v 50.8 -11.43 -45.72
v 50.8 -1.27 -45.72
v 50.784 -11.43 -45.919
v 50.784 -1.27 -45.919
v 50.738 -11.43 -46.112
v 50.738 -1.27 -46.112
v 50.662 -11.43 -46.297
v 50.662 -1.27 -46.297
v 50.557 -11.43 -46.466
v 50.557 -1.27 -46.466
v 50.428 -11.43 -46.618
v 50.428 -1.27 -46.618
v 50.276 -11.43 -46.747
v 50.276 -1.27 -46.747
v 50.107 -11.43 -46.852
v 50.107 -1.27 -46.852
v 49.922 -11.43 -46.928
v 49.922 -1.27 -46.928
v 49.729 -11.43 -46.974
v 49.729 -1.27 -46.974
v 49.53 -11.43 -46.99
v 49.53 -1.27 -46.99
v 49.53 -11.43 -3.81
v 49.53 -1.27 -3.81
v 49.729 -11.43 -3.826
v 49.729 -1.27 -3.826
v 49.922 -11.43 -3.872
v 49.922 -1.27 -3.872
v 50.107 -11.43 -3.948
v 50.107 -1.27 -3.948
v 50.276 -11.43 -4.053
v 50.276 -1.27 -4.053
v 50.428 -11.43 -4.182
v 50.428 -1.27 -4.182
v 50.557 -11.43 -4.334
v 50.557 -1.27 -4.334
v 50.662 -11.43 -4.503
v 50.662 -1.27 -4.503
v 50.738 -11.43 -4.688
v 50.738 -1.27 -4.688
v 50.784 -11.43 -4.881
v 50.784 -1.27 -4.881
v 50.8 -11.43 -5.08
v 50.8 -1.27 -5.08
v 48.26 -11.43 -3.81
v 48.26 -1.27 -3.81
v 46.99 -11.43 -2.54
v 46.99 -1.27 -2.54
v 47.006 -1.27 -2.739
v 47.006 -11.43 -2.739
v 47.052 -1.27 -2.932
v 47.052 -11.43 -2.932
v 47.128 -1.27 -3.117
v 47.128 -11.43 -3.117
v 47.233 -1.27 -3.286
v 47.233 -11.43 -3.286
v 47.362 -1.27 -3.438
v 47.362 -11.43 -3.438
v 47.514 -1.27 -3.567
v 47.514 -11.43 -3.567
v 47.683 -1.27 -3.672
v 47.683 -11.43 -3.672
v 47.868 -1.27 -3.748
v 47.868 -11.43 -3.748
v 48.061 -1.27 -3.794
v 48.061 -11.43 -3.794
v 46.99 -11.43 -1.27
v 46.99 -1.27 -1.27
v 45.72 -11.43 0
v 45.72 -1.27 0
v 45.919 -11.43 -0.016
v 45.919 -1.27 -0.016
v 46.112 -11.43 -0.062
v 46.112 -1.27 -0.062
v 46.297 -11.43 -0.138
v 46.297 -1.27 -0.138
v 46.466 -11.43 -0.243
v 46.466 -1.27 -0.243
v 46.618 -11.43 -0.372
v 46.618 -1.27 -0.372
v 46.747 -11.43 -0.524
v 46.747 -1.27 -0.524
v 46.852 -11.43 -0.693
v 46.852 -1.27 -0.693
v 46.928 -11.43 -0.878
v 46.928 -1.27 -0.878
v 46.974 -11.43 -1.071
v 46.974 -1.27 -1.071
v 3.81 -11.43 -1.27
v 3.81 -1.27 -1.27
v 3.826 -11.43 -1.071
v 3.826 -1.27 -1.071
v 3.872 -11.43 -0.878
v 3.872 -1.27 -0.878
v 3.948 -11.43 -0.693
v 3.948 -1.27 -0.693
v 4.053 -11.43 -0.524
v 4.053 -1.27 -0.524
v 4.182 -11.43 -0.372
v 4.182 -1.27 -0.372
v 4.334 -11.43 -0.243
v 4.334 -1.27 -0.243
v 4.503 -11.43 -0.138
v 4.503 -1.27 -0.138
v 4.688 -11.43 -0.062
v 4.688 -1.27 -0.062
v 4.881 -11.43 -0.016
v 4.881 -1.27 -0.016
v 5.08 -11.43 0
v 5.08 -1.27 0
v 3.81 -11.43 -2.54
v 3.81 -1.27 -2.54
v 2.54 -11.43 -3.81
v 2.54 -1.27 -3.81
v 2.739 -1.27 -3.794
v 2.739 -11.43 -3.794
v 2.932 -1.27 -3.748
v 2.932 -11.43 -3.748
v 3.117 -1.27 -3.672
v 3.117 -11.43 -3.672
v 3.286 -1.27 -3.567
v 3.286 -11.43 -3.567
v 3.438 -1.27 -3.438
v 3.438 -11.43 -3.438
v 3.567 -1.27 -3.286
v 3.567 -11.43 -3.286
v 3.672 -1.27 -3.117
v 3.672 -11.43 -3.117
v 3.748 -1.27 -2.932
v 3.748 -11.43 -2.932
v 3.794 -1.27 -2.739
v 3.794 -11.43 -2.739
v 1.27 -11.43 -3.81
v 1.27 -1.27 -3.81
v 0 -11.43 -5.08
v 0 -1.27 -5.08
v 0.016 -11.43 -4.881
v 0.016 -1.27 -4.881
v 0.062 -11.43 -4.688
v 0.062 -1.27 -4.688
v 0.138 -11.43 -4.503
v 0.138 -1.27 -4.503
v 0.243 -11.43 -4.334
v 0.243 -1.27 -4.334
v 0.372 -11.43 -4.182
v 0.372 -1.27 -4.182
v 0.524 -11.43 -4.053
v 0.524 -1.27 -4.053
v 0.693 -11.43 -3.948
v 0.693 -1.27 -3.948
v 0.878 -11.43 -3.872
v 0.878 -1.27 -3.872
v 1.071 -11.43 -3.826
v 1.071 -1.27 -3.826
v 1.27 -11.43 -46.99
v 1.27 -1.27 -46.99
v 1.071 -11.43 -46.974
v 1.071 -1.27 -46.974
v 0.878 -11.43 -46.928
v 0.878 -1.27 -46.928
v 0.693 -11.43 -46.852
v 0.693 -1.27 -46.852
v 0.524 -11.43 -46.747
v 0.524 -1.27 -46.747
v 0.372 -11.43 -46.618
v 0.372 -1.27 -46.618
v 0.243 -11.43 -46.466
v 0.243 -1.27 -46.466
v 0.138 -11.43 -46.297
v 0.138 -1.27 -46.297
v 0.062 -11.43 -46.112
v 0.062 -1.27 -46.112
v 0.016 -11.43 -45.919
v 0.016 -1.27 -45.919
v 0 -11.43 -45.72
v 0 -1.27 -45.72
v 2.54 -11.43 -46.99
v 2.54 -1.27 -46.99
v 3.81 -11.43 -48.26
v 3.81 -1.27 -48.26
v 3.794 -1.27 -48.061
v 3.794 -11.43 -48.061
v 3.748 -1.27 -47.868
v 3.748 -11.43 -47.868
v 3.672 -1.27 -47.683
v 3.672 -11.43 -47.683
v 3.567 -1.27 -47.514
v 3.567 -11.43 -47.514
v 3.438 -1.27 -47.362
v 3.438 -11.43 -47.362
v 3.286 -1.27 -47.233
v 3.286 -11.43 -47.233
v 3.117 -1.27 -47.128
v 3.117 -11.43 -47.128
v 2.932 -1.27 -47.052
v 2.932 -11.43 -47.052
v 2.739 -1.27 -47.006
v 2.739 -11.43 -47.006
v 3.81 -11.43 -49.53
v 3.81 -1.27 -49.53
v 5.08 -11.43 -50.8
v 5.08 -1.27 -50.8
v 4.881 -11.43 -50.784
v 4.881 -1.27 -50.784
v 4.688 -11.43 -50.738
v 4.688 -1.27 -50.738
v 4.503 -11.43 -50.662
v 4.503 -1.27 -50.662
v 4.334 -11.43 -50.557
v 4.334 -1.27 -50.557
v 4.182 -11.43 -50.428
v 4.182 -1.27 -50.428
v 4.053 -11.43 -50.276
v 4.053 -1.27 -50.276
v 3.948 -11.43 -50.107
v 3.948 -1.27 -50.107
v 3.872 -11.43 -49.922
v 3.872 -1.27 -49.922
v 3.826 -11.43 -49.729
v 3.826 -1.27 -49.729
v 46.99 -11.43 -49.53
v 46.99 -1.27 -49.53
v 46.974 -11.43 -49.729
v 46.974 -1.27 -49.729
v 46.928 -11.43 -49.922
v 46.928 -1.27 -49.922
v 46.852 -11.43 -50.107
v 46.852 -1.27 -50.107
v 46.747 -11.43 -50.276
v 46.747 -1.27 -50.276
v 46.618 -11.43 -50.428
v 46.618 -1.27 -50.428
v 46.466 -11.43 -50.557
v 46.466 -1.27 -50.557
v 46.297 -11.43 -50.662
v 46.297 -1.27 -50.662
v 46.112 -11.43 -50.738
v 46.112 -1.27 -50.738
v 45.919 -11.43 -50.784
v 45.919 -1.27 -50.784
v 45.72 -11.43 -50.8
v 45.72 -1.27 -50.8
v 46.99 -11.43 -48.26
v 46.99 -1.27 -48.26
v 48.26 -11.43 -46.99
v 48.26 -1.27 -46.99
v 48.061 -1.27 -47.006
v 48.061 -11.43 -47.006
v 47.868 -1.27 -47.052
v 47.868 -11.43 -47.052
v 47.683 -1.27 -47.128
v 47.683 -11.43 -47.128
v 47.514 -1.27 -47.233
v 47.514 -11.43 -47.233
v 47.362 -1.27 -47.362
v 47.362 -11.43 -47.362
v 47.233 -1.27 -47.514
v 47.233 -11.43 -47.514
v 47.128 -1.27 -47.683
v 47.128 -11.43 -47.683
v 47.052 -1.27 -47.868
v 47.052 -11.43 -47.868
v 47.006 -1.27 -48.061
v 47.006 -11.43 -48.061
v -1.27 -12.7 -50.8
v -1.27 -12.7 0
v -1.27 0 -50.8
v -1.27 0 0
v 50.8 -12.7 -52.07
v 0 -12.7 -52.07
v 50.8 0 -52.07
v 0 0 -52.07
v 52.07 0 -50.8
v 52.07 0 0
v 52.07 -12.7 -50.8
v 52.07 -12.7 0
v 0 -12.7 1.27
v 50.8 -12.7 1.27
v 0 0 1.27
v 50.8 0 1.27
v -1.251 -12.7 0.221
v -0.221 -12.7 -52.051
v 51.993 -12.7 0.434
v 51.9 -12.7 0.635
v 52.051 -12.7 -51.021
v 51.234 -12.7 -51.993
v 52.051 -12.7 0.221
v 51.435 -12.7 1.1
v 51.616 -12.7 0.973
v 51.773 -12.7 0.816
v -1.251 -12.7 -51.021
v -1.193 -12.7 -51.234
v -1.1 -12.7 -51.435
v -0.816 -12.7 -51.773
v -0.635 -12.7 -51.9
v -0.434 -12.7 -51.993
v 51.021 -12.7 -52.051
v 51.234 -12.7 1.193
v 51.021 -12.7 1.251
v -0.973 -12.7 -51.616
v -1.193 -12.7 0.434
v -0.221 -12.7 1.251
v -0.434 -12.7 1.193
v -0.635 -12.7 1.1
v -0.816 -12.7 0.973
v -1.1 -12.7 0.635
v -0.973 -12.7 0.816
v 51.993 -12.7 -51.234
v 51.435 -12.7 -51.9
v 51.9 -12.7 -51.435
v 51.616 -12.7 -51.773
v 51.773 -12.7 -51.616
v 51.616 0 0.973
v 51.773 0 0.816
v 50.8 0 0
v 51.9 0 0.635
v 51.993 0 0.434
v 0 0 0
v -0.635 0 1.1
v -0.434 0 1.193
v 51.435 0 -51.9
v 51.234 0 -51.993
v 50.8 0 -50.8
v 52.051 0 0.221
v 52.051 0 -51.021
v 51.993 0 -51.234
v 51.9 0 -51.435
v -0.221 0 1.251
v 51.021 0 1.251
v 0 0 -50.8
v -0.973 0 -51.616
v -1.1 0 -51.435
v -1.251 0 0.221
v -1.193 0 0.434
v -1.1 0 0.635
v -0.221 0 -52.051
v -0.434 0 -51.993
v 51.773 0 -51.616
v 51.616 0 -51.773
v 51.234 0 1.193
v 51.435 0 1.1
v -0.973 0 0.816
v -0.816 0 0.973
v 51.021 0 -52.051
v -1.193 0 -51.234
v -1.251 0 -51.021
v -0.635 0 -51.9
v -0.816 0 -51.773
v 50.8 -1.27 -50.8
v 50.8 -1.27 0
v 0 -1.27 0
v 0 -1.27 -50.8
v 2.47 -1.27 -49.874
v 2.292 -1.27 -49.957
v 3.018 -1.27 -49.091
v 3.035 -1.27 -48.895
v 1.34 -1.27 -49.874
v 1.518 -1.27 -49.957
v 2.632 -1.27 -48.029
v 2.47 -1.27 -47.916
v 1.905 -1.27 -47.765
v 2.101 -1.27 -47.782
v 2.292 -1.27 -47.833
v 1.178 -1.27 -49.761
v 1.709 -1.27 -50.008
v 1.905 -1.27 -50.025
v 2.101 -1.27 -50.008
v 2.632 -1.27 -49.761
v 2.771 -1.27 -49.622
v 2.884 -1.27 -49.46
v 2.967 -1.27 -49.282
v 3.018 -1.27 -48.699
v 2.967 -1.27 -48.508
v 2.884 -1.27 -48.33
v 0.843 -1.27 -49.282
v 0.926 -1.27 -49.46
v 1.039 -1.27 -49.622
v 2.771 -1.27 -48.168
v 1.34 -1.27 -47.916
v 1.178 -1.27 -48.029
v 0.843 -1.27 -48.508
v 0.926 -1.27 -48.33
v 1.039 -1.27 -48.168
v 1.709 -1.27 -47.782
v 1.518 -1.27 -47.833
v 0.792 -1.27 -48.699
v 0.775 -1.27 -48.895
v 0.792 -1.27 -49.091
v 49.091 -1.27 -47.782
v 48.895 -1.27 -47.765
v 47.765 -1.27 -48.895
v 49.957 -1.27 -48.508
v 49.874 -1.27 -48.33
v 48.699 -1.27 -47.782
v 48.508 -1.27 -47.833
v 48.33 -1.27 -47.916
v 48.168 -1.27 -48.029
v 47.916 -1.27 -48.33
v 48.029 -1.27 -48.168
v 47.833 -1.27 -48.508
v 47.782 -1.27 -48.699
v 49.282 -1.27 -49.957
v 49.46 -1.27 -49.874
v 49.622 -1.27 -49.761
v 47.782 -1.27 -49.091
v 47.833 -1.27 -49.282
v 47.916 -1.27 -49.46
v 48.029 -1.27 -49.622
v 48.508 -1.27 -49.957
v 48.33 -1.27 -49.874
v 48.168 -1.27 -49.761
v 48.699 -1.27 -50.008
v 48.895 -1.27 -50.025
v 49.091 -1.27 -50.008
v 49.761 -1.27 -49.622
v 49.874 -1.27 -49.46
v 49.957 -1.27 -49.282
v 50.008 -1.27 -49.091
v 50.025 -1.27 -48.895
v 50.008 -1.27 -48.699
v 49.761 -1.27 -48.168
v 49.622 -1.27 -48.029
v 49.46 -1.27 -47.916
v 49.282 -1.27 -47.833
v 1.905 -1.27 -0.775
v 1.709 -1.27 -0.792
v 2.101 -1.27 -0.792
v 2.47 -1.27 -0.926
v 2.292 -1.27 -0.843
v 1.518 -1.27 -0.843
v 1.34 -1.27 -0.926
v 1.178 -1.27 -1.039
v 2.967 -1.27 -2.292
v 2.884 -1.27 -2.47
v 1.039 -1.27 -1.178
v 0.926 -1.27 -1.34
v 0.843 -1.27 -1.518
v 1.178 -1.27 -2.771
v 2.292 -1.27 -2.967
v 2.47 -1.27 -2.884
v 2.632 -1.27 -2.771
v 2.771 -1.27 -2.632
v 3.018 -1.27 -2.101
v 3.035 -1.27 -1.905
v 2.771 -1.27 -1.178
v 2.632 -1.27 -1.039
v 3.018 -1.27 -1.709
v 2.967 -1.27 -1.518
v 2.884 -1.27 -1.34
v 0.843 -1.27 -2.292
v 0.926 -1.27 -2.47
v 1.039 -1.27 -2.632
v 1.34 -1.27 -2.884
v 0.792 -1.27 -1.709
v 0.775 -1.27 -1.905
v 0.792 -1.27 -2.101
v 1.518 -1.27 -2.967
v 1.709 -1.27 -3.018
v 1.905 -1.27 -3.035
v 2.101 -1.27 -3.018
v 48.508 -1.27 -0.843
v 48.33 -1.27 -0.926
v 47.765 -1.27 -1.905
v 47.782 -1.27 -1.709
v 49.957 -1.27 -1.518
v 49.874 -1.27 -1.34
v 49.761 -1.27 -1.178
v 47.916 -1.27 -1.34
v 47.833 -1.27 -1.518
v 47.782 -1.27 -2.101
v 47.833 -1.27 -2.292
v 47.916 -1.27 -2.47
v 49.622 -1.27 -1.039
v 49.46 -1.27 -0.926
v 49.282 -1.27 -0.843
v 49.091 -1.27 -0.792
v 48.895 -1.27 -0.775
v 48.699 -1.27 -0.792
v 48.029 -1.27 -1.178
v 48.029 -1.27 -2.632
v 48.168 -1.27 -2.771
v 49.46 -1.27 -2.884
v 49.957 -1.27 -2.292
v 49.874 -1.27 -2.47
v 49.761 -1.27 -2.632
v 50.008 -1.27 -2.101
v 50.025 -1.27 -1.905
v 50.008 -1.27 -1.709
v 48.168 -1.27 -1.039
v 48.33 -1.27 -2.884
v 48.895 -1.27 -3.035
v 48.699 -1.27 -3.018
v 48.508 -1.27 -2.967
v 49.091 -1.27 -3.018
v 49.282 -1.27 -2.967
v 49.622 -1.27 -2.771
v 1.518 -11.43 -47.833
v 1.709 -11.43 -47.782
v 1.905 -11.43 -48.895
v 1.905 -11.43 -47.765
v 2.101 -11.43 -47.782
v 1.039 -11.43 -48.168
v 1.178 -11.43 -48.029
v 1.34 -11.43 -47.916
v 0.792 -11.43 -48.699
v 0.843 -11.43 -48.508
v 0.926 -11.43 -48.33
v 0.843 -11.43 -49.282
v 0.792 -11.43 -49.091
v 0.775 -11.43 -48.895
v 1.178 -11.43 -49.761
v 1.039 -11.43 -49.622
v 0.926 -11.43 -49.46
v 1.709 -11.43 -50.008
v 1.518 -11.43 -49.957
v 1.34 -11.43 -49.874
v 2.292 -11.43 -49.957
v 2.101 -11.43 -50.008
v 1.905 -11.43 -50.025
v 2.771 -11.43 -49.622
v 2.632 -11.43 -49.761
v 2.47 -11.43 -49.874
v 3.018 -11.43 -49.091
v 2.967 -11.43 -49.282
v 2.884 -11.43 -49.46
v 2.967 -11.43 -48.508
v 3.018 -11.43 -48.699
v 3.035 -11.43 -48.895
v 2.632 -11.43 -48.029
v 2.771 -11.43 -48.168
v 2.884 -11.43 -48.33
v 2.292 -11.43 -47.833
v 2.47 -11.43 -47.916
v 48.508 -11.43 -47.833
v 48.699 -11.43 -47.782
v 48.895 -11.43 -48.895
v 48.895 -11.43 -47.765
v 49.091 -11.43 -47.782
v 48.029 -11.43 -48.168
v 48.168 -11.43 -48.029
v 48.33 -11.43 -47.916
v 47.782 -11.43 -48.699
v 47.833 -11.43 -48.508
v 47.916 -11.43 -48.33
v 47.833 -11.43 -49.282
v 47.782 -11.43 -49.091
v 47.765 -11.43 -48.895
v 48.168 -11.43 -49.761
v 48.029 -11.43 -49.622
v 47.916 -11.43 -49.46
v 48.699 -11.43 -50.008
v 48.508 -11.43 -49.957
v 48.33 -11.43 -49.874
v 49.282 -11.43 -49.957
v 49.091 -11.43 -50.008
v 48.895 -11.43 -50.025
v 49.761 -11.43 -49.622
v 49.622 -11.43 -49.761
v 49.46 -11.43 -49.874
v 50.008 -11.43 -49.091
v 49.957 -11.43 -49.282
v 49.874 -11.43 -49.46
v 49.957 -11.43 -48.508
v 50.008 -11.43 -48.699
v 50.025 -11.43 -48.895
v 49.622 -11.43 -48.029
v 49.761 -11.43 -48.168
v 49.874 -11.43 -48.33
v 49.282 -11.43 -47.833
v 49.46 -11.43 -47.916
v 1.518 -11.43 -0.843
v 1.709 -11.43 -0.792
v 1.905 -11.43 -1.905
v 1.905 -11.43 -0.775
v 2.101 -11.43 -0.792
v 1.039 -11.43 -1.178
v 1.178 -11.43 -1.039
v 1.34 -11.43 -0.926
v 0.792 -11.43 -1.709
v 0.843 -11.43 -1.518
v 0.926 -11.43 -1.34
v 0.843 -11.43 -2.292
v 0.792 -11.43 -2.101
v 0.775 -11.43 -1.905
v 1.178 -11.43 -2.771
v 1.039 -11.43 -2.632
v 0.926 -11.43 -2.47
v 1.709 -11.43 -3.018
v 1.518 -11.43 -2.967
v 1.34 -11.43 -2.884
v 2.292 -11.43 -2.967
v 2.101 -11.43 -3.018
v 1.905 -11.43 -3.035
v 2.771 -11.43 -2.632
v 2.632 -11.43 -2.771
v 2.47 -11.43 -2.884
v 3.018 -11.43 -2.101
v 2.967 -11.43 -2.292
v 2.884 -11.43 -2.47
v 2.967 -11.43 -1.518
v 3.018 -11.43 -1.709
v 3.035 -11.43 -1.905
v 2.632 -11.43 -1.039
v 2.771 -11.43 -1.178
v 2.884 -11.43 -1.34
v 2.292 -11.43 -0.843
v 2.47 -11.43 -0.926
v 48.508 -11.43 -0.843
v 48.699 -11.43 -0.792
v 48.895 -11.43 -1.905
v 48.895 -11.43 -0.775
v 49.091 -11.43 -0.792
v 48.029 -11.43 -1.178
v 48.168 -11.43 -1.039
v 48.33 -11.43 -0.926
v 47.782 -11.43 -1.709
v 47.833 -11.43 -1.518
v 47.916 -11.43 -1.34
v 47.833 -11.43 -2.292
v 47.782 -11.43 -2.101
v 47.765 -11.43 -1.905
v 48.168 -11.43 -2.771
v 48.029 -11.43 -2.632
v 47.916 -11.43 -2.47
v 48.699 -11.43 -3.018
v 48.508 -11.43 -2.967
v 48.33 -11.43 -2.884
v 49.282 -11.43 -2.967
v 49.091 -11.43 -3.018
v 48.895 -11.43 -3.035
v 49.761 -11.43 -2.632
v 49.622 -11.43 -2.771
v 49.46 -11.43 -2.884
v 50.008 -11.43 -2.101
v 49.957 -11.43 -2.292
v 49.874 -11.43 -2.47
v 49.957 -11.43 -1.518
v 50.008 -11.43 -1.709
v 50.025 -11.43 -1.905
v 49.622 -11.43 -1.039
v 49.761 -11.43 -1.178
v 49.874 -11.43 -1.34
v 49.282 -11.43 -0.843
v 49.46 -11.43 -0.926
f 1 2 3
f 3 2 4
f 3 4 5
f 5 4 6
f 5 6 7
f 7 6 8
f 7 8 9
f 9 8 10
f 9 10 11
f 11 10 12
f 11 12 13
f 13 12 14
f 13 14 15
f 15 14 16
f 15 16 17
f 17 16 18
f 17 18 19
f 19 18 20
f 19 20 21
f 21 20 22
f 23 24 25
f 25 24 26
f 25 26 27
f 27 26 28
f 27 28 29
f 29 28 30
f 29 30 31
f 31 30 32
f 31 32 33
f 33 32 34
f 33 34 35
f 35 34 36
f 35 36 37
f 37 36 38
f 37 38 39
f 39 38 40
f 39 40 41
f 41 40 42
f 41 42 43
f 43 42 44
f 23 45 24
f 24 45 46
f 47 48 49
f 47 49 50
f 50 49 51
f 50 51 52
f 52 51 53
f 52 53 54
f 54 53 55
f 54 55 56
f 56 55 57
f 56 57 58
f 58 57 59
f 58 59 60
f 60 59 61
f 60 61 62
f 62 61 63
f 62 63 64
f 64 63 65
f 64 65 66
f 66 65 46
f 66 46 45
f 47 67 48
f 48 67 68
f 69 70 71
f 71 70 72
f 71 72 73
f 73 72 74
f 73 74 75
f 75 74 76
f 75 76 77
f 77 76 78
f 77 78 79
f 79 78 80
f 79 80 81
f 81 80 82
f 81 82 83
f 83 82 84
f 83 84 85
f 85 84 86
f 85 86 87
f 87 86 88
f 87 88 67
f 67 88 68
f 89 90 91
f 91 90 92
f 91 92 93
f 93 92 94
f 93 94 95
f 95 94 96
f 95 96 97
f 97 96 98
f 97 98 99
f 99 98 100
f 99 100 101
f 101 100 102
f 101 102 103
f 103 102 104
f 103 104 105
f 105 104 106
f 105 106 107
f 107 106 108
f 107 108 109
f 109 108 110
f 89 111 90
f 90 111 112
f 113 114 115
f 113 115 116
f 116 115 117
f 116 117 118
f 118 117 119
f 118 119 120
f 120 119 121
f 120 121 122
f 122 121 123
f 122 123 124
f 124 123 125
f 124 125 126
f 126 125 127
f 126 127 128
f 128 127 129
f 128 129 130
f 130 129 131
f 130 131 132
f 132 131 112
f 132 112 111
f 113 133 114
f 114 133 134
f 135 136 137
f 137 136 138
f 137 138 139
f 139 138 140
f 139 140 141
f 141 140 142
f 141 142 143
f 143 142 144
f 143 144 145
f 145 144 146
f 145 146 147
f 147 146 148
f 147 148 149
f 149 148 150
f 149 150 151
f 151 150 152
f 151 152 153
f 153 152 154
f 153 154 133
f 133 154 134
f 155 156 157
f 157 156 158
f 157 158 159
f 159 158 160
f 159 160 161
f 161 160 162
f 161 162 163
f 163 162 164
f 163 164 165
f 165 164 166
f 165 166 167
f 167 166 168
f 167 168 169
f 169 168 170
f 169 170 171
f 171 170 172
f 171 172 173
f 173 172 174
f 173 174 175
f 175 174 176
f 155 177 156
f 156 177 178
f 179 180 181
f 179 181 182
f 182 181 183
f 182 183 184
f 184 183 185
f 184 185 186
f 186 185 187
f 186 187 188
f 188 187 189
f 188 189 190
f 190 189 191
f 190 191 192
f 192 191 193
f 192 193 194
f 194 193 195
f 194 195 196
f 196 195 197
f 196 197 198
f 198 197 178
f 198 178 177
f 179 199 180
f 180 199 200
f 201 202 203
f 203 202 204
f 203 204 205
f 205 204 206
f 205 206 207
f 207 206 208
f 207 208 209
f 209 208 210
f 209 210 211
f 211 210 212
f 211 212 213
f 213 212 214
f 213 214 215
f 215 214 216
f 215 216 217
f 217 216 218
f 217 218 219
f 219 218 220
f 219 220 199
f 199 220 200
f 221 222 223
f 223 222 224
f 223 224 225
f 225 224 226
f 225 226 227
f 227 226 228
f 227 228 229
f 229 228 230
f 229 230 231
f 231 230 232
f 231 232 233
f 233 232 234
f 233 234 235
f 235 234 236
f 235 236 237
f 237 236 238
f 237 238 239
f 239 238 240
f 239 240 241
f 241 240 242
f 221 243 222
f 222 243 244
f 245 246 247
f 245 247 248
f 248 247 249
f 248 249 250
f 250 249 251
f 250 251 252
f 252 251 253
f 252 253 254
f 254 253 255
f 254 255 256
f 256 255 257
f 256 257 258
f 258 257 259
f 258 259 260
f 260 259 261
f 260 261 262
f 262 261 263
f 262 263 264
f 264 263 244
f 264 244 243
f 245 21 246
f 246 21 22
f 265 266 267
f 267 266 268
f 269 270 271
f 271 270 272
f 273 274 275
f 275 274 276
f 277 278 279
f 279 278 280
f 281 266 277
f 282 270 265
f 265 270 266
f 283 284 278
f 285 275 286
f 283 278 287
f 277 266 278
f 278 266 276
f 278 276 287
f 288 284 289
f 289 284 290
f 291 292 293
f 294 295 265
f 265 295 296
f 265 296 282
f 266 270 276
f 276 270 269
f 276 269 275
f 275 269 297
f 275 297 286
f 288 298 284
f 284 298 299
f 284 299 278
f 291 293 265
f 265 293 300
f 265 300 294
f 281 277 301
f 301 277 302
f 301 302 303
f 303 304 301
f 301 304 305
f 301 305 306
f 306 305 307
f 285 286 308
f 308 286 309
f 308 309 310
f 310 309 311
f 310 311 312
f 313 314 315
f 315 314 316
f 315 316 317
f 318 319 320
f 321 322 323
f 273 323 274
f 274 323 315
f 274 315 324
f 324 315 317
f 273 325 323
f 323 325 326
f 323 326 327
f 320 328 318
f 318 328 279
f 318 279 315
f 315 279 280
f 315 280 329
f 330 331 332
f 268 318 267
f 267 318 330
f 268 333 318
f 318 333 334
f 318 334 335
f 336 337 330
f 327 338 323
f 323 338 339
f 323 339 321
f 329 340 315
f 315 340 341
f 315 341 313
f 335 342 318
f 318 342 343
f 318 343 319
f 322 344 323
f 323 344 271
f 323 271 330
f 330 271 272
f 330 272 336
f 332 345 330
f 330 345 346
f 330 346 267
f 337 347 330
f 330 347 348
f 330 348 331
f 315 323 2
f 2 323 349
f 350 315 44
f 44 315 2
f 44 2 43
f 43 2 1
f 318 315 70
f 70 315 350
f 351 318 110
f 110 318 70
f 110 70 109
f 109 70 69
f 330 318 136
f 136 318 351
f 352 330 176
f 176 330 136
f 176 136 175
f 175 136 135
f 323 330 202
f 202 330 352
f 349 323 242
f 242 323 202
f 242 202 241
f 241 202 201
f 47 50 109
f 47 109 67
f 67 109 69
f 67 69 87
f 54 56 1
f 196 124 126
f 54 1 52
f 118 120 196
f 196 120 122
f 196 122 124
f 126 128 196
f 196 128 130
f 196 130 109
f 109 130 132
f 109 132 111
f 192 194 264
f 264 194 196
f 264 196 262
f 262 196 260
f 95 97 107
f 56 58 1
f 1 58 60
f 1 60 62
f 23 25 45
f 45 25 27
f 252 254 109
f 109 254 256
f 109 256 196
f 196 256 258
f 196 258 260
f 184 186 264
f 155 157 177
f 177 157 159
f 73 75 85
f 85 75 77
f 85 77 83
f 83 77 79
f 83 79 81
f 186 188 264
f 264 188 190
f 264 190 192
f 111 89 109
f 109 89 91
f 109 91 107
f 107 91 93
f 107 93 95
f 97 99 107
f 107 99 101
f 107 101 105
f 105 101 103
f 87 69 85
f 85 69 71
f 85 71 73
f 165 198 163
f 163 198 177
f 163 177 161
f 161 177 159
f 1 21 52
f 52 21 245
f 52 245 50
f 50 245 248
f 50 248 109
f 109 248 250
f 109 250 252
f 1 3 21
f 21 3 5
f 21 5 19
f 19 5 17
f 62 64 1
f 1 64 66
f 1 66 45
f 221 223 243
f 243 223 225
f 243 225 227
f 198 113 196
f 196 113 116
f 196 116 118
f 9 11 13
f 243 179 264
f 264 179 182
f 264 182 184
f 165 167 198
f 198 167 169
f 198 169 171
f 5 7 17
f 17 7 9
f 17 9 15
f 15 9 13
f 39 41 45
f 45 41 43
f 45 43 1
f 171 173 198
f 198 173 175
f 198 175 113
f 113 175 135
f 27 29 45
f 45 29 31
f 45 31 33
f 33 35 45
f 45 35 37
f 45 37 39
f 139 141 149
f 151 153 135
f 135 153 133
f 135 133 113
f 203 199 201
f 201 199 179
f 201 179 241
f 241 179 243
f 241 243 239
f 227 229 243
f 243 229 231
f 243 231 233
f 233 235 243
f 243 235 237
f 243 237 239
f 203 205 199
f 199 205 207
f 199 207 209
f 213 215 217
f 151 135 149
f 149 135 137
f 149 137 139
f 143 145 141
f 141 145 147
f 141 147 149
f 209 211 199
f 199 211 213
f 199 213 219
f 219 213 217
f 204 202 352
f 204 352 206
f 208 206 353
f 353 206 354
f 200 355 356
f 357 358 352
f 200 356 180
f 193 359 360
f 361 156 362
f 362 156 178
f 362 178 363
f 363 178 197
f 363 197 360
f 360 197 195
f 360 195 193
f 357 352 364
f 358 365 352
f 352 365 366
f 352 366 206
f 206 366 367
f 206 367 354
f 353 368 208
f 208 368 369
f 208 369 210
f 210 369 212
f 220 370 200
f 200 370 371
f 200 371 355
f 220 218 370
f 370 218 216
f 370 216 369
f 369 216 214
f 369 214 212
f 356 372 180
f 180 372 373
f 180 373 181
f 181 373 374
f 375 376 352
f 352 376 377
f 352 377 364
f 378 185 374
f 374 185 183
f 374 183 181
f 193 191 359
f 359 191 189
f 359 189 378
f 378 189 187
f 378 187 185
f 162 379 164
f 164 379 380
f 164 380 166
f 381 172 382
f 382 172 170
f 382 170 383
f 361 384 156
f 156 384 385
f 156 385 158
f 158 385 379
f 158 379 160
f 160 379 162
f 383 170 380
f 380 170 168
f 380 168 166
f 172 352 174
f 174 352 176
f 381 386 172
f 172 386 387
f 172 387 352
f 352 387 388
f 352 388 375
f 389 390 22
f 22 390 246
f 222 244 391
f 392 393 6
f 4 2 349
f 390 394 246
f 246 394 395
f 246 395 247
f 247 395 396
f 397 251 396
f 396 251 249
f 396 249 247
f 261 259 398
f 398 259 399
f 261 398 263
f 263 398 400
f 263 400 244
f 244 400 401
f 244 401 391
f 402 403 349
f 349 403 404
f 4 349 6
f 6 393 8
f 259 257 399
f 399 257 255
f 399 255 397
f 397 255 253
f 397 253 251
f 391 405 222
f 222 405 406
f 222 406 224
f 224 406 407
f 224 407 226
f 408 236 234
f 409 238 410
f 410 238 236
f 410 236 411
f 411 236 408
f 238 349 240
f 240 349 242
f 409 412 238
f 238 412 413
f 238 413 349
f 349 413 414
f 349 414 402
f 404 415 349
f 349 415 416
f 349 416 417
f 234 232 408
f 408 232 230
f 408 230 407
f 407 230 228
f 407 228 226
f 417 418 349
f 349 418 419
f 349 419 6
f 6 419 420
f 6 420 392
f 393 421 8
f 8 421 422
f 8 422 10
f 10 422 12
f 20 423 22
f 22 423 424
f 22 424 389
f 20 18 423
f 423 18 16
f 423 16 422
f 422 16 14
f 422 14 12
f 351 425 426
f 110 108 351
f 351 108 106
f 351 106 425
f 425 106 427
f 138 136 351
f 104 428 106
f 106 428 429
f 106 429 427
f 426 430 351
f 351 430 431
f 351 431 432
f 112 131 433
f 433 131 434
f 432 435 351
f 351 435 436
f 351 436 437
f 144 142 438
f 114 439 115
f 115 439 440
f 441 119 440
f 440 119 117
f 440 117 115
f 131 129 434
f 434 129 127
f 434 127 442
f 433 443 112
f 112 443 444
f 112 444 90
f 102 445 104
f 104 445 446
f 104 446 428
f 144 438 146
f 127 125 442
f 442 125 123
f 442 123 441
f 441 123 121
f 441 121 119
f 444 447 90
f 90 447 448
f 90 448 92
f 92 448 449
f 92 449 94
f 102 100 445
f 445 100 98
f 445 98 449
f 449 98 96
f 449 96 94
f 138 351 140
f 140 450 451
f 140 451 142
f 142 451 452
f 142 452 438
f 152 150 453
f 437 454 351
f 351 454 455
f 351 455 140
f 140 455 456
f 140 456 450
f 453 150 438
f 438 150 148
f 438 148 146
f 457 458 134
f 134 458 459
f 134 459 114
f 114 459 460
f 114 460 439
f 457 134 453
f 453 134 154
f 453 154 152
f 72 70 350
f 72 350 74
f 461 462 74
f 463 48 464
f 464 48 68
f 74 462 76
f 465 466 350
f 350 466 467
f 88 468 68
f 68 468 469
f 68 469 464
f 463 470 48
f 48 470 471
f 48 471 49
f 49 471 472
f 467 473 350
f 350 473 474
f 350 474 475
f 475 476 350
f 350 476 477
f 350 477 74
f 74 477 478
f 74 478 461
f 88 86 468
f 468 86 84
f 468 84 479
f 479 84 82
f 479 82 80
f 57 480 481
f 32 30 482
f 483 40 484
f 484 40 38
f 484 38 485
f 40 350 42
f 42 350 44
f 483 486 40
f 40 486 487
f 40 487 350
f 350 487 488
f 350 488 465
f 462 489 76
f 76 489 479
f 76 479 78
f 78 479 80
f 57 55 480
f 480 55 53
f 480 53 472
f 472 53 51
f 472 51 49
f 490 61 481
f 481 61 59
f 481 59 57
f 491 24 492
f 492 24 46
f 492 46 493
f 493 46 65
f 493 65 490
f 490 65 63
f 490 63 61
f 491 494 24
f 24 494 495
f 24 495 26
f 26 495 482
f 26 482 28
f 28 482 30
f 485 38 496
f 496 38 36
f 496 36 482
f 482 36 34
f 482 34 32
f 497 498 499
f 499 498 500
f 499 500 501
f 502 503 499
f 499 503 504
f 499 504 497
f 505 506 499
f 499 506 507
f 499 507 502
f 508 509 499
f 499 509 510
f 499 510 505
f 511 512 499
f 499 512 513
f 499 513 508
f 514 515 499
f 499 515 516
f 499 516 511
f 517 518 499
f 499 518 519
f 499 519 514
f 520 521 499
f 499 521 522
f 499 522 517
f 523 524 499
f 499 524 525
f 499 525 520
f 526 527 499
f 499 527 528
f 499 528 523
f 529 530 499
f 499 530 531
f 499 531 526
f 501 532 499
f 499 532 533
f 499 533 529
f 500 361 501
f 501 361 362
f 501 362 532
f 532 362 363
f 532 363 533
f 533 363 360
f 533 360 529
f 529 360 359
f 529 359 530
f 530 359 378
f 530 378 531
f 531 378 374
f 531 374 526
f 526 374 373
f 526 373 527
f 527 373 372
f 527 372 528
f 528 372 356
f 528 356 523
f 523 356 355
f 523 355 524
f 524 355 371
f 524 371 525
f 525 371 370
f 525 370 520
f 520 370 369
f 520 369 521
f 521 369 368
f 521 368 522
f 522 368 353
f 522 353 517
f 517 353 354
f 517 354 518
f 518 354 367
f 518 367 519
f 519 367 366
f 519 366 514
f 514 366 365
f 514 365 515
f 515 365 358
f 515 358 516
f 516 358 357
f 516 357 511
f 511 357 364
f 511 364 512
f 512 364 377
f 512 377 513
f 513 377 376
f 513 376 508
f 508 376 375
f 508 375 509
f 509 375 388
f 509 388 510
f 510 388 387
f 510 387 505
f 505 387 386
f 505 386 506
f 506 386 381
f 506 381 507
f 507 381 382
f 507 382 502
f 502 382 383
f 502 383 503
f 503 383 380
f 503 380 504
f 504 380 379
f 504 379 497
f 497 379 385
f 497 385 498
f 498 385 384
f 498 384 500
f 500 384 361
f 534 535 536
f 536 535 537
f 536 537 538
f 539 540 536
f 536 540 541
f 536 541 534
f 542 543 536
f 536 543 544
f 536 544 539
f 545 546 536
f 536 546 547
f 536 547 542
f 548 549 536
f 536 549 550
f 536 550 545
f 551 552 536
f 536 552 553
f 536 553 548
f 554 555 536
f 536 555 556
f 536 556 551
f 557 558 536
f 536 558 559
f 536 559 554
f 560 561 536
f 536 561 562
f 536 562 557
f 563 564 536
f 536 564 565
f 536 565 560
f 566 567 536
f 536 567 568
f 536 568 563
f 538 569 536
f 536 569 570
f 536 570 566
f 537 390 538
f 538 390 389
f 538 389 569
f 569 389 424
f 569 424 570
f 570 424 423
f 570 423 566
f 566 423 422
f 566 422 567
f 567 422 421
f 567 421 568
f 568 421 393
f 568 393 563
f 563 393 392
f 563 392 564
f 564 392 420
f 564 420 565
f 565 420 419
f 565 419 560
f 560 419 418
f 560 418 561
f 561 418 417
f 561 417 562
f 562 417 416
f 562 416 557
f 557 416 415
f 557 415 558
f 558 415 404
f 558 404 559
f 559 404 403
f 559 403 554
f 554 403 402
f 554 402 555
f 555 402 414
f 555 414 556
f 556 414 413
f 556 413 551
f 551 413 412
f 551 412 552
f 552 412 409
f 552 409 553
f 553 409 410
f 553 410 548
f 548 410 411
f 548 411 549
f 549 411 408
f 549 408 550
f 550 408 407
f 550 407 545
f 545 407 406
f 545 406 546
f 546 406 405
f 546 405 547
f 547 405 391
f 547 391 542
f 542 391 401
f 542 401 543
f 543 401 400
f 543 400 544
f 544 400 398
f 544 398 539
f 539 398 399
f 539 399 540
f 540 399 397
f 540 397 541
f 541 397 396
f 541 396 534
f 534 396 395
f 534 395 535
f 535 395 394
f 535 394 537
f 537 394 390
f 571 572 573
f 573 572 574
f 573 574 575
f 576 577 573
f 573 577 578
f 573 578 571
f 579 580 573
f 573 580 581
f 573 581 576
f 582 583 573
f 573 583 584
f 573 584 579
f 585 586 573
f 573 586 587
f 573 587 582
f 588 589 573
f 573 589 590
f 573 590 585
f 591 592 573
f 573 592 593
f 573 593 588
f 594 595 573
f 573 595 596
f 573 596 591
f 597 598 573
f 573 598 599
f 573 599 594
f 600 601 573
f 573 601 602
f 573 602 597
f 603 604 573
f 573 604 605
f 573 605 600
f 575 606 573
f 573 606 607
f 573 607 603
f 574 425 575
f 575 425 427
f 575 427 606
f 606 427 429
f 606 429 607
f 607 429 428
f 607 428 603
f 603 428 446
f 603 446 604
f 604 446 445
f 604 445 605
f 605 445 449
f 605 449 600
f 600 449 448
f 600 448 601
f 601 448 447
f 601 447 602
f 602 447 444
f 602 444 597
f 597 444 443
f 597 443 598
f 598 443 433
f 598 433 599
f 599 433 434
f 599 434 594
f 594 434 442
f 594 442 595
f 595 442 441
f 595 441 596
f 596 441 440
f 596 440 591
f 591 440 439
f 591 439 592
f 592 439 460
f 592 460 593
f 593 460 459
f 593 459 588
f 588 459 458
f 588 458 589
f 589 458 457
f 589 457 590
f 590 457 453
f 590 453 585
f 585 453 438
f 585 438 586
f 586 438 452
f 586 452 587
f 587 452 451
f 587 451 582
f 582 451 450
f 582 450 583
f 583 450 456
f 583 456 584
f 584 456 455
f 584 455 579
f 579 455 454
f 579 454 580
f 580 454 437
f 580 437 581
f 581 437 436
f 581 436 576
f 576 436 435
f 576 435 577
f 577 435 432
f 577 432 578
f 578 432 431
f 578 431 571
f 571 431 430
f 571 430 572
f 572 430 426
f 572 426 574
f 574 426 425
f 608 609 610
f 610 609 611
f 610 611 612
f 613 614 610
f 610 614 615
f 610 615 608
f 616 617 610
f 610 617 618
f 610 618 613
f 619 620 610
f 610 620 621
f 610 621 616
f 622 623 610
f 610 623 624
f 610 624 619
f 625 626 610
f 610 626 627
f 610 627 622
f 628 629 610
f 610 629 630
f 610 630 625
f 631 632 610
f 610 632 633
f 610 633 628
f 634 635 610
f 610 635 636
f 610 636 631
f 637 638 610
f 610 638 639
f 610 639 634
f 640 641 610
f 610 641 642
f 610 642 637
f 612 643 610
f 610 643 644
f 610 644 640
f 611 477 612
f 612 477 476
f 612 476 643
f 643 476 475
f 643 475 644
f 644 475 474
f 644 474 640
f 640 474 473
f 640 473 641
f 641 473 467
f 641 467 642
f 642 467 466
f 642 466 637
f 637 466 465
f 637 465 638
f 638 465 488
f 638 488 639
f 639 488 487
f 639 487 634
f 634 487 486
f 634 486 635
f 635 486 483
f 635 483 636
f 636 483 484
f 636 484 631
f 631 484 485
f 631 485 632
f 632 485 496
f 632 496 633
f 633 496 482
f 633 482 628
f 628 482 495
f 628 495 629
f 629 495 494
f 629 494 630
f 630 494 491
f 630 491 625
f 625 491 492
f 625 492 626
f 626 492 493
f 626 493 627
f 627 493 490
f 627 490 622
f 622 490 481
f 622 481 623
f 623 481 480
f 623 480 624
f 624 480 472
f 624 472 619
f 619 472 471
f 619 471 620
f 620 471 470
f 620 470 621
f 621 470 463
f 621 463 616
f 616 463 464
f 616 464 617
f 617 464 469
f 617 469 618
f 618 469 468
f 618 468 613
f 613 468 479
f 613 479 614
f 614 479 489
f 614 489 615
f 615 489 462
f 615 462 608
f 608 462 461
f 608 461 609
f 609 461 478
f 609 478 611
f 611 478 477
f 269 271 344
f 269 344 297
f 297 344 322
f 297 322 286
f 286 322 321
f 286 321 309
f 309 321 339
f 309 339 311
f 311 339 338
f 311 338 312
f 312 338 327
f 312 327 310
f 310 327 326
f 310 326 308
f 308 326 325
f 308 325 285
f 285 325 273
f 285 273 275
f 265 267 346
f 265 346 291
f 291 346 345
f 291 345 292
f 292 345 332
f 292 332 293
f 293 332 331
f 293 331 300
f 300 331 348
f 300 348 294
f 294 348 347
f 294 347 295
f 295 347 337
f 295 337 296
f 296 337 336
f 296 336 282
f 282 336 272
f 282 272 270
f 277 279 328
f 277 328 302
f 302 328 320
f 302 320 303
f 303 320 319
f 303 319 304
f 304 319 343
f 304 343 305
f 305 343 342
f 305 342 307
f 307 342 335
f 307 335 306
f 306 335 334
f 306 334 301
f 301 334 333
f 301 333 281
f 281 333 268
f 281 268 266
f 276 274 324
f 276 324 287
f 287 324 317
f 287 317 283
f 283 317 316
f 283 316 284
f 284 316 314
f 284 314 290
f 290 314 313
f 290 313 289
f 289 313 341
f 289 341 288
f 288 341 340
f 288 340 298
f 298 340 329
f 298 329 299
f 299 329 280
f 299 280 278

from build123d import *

# Parameters (mm, degrees)
SKETCH4_W                 = 53.34
SKETCH4_H                 = 53.34
BOSS_EXTRUDE1_DEPTH       = 12.7
CUT_EXTRUDE1_DEPTH        = 11.43
F_4_40_TAPPED_HOLE1_D     = 2.2606
F_4_40_TAPPED_HOLE1_DEPTH = 11.43
SKETCH5_W                 = 50.8
SKETCH5_H                 = 50.8
CUT_EXTRUDE2_DEPTH        = 1.27
FILLET1_R                 = 1.27


with BuildPart() as part:
    # Sketch4 → Boss-Extrude1 (new body)
    with BuildSketch(Plane(origin=(0, 0, 0), x_dir=(1, 0, 0), z_dir=(0, 1, 0))):
        with Locations((25.4, 25.4)):
            Rectangle(SKETCH4_W, SKETCH4_H)
    extrude(amount=-BOSS_EXTRUDE1_DEPTH)

    # Sketch3 → Cut-Extrude1 (cut)
    with BuildSketch(Plane(origin=(0, 0, 0), x_dir=(1, 0, 0), z_dir=(0, 1, 0))):
        with BuildLine():
            Line((5.08, 0), (45.72, 0))
            ThreePointArc((45.72, 0), (46.618025612, 0.371974388), (46.99, 1.27))
            Line((46.99, 1.27), (46.99, 2.54))
            ThreePointArc((46.99, 2.54), (47.361974388, 3.438025612), (48.26, 3.81))
            Line((48.26, 3.81), (49.53, 3.81))
            ThreePointArc((49.53, 3.81), (50.428025612, 4.181974388), (50.8, 5.08))
            Line((50.8, 5.08), (50.8, 45.72))
            ThreePointArc((50.8, 45.72), (50.428025612, 46.618025612), (49.53, 46.99))
            Line((49.53, 46.99), (48.26, 46.99))
            ThreePointArc((48.26, 46.99), (47.361974388, 47.361974388), (46.99, 48.26))
            Line((46.99, 48.26), (46.99, 49.53))
            ThreePointArc((46.99, 49.53), (46.618025612, 50.428025612), (45.72, 50.8))
            Line((45.72, 50.8), (5.08, 50.8))
            ThreePointArc((5.08, 50.8), (4.181974388, 50.428025612), (3.81, 49.53))
            Line((3.81, 49.53), (3.81, 48.26))
            ThreePointArc((3.81, 48.26), (3.438025612, 47.361974388), (2.54, 46.99))
            Line((2.54, 46.99), (1.27, 46.99))
            ThreePointArc((1.27, 46.99), (0.371974388, 46.618025612), (0, 45.72))
            Line((0, 45.72), (0, 5.08))
            ThreePointArc((0, 5.08), (0.371974388, 4.181974388), (1.27, 3.81))
            Line((1.27, 3.81), (2.54, 3.81))
            ThreePointArc((2.54, 3.81), (3.438025612, 3.438025612), (3.81, 2.54))
            Line((3.81, 2.54), (3.81, 1.27))
            ThreePointArc((3.81, 1.27), (4.181974388, 0.371974388), (5.08, 0))
        make_face()
    extrude(amount=-CUT_EXTRUDE1_DEPTH, mode=Mode.SUBTRACT)

    # #4-40 Tapped Hole1
    with Locations(Plane(origin=(0, 0, 0), x_dir=(1, 0, 0), z_dir=(0, 1, 0))):
        with Locations((1.905, 48.895), (48.895, 48.895), (1.905, 1.905), (48.895, 1.905)):
            Hole(F_4_40_TAPPED_HOLE1_D / 2, depth=F_4_40_TAPPED_HOLE1_DEPTH)

    # Sketch5 → Cut-Extrude2 (cut)
    with BuildSketch(Plane(origin=(0, 0, 0), x_dir=(1, 0, 0), z_dir=(0, 1, 0))):
        with Locations((25.4, 25.4)):
            Rectangle(SKETCH5_W, SKETCH5_H)
    extrude(amount=-CUT_EXTRUDE2_DEPTH, mode=Mode.SUBTRACT)

    # Fillet1
    fillet1_edges = [part.edges().sort_by_distance(p)[0] for p in [
        (-1.27, -6.35, -52.07),
        (52.07, -6.35, -52.07),
        (52.07, -6.35, 1.27),
        (-1.27, -6.35, 1.27),
    ]]
    fillet(fillet1_edges, radius=FILLET1_R)


solid = part.part
